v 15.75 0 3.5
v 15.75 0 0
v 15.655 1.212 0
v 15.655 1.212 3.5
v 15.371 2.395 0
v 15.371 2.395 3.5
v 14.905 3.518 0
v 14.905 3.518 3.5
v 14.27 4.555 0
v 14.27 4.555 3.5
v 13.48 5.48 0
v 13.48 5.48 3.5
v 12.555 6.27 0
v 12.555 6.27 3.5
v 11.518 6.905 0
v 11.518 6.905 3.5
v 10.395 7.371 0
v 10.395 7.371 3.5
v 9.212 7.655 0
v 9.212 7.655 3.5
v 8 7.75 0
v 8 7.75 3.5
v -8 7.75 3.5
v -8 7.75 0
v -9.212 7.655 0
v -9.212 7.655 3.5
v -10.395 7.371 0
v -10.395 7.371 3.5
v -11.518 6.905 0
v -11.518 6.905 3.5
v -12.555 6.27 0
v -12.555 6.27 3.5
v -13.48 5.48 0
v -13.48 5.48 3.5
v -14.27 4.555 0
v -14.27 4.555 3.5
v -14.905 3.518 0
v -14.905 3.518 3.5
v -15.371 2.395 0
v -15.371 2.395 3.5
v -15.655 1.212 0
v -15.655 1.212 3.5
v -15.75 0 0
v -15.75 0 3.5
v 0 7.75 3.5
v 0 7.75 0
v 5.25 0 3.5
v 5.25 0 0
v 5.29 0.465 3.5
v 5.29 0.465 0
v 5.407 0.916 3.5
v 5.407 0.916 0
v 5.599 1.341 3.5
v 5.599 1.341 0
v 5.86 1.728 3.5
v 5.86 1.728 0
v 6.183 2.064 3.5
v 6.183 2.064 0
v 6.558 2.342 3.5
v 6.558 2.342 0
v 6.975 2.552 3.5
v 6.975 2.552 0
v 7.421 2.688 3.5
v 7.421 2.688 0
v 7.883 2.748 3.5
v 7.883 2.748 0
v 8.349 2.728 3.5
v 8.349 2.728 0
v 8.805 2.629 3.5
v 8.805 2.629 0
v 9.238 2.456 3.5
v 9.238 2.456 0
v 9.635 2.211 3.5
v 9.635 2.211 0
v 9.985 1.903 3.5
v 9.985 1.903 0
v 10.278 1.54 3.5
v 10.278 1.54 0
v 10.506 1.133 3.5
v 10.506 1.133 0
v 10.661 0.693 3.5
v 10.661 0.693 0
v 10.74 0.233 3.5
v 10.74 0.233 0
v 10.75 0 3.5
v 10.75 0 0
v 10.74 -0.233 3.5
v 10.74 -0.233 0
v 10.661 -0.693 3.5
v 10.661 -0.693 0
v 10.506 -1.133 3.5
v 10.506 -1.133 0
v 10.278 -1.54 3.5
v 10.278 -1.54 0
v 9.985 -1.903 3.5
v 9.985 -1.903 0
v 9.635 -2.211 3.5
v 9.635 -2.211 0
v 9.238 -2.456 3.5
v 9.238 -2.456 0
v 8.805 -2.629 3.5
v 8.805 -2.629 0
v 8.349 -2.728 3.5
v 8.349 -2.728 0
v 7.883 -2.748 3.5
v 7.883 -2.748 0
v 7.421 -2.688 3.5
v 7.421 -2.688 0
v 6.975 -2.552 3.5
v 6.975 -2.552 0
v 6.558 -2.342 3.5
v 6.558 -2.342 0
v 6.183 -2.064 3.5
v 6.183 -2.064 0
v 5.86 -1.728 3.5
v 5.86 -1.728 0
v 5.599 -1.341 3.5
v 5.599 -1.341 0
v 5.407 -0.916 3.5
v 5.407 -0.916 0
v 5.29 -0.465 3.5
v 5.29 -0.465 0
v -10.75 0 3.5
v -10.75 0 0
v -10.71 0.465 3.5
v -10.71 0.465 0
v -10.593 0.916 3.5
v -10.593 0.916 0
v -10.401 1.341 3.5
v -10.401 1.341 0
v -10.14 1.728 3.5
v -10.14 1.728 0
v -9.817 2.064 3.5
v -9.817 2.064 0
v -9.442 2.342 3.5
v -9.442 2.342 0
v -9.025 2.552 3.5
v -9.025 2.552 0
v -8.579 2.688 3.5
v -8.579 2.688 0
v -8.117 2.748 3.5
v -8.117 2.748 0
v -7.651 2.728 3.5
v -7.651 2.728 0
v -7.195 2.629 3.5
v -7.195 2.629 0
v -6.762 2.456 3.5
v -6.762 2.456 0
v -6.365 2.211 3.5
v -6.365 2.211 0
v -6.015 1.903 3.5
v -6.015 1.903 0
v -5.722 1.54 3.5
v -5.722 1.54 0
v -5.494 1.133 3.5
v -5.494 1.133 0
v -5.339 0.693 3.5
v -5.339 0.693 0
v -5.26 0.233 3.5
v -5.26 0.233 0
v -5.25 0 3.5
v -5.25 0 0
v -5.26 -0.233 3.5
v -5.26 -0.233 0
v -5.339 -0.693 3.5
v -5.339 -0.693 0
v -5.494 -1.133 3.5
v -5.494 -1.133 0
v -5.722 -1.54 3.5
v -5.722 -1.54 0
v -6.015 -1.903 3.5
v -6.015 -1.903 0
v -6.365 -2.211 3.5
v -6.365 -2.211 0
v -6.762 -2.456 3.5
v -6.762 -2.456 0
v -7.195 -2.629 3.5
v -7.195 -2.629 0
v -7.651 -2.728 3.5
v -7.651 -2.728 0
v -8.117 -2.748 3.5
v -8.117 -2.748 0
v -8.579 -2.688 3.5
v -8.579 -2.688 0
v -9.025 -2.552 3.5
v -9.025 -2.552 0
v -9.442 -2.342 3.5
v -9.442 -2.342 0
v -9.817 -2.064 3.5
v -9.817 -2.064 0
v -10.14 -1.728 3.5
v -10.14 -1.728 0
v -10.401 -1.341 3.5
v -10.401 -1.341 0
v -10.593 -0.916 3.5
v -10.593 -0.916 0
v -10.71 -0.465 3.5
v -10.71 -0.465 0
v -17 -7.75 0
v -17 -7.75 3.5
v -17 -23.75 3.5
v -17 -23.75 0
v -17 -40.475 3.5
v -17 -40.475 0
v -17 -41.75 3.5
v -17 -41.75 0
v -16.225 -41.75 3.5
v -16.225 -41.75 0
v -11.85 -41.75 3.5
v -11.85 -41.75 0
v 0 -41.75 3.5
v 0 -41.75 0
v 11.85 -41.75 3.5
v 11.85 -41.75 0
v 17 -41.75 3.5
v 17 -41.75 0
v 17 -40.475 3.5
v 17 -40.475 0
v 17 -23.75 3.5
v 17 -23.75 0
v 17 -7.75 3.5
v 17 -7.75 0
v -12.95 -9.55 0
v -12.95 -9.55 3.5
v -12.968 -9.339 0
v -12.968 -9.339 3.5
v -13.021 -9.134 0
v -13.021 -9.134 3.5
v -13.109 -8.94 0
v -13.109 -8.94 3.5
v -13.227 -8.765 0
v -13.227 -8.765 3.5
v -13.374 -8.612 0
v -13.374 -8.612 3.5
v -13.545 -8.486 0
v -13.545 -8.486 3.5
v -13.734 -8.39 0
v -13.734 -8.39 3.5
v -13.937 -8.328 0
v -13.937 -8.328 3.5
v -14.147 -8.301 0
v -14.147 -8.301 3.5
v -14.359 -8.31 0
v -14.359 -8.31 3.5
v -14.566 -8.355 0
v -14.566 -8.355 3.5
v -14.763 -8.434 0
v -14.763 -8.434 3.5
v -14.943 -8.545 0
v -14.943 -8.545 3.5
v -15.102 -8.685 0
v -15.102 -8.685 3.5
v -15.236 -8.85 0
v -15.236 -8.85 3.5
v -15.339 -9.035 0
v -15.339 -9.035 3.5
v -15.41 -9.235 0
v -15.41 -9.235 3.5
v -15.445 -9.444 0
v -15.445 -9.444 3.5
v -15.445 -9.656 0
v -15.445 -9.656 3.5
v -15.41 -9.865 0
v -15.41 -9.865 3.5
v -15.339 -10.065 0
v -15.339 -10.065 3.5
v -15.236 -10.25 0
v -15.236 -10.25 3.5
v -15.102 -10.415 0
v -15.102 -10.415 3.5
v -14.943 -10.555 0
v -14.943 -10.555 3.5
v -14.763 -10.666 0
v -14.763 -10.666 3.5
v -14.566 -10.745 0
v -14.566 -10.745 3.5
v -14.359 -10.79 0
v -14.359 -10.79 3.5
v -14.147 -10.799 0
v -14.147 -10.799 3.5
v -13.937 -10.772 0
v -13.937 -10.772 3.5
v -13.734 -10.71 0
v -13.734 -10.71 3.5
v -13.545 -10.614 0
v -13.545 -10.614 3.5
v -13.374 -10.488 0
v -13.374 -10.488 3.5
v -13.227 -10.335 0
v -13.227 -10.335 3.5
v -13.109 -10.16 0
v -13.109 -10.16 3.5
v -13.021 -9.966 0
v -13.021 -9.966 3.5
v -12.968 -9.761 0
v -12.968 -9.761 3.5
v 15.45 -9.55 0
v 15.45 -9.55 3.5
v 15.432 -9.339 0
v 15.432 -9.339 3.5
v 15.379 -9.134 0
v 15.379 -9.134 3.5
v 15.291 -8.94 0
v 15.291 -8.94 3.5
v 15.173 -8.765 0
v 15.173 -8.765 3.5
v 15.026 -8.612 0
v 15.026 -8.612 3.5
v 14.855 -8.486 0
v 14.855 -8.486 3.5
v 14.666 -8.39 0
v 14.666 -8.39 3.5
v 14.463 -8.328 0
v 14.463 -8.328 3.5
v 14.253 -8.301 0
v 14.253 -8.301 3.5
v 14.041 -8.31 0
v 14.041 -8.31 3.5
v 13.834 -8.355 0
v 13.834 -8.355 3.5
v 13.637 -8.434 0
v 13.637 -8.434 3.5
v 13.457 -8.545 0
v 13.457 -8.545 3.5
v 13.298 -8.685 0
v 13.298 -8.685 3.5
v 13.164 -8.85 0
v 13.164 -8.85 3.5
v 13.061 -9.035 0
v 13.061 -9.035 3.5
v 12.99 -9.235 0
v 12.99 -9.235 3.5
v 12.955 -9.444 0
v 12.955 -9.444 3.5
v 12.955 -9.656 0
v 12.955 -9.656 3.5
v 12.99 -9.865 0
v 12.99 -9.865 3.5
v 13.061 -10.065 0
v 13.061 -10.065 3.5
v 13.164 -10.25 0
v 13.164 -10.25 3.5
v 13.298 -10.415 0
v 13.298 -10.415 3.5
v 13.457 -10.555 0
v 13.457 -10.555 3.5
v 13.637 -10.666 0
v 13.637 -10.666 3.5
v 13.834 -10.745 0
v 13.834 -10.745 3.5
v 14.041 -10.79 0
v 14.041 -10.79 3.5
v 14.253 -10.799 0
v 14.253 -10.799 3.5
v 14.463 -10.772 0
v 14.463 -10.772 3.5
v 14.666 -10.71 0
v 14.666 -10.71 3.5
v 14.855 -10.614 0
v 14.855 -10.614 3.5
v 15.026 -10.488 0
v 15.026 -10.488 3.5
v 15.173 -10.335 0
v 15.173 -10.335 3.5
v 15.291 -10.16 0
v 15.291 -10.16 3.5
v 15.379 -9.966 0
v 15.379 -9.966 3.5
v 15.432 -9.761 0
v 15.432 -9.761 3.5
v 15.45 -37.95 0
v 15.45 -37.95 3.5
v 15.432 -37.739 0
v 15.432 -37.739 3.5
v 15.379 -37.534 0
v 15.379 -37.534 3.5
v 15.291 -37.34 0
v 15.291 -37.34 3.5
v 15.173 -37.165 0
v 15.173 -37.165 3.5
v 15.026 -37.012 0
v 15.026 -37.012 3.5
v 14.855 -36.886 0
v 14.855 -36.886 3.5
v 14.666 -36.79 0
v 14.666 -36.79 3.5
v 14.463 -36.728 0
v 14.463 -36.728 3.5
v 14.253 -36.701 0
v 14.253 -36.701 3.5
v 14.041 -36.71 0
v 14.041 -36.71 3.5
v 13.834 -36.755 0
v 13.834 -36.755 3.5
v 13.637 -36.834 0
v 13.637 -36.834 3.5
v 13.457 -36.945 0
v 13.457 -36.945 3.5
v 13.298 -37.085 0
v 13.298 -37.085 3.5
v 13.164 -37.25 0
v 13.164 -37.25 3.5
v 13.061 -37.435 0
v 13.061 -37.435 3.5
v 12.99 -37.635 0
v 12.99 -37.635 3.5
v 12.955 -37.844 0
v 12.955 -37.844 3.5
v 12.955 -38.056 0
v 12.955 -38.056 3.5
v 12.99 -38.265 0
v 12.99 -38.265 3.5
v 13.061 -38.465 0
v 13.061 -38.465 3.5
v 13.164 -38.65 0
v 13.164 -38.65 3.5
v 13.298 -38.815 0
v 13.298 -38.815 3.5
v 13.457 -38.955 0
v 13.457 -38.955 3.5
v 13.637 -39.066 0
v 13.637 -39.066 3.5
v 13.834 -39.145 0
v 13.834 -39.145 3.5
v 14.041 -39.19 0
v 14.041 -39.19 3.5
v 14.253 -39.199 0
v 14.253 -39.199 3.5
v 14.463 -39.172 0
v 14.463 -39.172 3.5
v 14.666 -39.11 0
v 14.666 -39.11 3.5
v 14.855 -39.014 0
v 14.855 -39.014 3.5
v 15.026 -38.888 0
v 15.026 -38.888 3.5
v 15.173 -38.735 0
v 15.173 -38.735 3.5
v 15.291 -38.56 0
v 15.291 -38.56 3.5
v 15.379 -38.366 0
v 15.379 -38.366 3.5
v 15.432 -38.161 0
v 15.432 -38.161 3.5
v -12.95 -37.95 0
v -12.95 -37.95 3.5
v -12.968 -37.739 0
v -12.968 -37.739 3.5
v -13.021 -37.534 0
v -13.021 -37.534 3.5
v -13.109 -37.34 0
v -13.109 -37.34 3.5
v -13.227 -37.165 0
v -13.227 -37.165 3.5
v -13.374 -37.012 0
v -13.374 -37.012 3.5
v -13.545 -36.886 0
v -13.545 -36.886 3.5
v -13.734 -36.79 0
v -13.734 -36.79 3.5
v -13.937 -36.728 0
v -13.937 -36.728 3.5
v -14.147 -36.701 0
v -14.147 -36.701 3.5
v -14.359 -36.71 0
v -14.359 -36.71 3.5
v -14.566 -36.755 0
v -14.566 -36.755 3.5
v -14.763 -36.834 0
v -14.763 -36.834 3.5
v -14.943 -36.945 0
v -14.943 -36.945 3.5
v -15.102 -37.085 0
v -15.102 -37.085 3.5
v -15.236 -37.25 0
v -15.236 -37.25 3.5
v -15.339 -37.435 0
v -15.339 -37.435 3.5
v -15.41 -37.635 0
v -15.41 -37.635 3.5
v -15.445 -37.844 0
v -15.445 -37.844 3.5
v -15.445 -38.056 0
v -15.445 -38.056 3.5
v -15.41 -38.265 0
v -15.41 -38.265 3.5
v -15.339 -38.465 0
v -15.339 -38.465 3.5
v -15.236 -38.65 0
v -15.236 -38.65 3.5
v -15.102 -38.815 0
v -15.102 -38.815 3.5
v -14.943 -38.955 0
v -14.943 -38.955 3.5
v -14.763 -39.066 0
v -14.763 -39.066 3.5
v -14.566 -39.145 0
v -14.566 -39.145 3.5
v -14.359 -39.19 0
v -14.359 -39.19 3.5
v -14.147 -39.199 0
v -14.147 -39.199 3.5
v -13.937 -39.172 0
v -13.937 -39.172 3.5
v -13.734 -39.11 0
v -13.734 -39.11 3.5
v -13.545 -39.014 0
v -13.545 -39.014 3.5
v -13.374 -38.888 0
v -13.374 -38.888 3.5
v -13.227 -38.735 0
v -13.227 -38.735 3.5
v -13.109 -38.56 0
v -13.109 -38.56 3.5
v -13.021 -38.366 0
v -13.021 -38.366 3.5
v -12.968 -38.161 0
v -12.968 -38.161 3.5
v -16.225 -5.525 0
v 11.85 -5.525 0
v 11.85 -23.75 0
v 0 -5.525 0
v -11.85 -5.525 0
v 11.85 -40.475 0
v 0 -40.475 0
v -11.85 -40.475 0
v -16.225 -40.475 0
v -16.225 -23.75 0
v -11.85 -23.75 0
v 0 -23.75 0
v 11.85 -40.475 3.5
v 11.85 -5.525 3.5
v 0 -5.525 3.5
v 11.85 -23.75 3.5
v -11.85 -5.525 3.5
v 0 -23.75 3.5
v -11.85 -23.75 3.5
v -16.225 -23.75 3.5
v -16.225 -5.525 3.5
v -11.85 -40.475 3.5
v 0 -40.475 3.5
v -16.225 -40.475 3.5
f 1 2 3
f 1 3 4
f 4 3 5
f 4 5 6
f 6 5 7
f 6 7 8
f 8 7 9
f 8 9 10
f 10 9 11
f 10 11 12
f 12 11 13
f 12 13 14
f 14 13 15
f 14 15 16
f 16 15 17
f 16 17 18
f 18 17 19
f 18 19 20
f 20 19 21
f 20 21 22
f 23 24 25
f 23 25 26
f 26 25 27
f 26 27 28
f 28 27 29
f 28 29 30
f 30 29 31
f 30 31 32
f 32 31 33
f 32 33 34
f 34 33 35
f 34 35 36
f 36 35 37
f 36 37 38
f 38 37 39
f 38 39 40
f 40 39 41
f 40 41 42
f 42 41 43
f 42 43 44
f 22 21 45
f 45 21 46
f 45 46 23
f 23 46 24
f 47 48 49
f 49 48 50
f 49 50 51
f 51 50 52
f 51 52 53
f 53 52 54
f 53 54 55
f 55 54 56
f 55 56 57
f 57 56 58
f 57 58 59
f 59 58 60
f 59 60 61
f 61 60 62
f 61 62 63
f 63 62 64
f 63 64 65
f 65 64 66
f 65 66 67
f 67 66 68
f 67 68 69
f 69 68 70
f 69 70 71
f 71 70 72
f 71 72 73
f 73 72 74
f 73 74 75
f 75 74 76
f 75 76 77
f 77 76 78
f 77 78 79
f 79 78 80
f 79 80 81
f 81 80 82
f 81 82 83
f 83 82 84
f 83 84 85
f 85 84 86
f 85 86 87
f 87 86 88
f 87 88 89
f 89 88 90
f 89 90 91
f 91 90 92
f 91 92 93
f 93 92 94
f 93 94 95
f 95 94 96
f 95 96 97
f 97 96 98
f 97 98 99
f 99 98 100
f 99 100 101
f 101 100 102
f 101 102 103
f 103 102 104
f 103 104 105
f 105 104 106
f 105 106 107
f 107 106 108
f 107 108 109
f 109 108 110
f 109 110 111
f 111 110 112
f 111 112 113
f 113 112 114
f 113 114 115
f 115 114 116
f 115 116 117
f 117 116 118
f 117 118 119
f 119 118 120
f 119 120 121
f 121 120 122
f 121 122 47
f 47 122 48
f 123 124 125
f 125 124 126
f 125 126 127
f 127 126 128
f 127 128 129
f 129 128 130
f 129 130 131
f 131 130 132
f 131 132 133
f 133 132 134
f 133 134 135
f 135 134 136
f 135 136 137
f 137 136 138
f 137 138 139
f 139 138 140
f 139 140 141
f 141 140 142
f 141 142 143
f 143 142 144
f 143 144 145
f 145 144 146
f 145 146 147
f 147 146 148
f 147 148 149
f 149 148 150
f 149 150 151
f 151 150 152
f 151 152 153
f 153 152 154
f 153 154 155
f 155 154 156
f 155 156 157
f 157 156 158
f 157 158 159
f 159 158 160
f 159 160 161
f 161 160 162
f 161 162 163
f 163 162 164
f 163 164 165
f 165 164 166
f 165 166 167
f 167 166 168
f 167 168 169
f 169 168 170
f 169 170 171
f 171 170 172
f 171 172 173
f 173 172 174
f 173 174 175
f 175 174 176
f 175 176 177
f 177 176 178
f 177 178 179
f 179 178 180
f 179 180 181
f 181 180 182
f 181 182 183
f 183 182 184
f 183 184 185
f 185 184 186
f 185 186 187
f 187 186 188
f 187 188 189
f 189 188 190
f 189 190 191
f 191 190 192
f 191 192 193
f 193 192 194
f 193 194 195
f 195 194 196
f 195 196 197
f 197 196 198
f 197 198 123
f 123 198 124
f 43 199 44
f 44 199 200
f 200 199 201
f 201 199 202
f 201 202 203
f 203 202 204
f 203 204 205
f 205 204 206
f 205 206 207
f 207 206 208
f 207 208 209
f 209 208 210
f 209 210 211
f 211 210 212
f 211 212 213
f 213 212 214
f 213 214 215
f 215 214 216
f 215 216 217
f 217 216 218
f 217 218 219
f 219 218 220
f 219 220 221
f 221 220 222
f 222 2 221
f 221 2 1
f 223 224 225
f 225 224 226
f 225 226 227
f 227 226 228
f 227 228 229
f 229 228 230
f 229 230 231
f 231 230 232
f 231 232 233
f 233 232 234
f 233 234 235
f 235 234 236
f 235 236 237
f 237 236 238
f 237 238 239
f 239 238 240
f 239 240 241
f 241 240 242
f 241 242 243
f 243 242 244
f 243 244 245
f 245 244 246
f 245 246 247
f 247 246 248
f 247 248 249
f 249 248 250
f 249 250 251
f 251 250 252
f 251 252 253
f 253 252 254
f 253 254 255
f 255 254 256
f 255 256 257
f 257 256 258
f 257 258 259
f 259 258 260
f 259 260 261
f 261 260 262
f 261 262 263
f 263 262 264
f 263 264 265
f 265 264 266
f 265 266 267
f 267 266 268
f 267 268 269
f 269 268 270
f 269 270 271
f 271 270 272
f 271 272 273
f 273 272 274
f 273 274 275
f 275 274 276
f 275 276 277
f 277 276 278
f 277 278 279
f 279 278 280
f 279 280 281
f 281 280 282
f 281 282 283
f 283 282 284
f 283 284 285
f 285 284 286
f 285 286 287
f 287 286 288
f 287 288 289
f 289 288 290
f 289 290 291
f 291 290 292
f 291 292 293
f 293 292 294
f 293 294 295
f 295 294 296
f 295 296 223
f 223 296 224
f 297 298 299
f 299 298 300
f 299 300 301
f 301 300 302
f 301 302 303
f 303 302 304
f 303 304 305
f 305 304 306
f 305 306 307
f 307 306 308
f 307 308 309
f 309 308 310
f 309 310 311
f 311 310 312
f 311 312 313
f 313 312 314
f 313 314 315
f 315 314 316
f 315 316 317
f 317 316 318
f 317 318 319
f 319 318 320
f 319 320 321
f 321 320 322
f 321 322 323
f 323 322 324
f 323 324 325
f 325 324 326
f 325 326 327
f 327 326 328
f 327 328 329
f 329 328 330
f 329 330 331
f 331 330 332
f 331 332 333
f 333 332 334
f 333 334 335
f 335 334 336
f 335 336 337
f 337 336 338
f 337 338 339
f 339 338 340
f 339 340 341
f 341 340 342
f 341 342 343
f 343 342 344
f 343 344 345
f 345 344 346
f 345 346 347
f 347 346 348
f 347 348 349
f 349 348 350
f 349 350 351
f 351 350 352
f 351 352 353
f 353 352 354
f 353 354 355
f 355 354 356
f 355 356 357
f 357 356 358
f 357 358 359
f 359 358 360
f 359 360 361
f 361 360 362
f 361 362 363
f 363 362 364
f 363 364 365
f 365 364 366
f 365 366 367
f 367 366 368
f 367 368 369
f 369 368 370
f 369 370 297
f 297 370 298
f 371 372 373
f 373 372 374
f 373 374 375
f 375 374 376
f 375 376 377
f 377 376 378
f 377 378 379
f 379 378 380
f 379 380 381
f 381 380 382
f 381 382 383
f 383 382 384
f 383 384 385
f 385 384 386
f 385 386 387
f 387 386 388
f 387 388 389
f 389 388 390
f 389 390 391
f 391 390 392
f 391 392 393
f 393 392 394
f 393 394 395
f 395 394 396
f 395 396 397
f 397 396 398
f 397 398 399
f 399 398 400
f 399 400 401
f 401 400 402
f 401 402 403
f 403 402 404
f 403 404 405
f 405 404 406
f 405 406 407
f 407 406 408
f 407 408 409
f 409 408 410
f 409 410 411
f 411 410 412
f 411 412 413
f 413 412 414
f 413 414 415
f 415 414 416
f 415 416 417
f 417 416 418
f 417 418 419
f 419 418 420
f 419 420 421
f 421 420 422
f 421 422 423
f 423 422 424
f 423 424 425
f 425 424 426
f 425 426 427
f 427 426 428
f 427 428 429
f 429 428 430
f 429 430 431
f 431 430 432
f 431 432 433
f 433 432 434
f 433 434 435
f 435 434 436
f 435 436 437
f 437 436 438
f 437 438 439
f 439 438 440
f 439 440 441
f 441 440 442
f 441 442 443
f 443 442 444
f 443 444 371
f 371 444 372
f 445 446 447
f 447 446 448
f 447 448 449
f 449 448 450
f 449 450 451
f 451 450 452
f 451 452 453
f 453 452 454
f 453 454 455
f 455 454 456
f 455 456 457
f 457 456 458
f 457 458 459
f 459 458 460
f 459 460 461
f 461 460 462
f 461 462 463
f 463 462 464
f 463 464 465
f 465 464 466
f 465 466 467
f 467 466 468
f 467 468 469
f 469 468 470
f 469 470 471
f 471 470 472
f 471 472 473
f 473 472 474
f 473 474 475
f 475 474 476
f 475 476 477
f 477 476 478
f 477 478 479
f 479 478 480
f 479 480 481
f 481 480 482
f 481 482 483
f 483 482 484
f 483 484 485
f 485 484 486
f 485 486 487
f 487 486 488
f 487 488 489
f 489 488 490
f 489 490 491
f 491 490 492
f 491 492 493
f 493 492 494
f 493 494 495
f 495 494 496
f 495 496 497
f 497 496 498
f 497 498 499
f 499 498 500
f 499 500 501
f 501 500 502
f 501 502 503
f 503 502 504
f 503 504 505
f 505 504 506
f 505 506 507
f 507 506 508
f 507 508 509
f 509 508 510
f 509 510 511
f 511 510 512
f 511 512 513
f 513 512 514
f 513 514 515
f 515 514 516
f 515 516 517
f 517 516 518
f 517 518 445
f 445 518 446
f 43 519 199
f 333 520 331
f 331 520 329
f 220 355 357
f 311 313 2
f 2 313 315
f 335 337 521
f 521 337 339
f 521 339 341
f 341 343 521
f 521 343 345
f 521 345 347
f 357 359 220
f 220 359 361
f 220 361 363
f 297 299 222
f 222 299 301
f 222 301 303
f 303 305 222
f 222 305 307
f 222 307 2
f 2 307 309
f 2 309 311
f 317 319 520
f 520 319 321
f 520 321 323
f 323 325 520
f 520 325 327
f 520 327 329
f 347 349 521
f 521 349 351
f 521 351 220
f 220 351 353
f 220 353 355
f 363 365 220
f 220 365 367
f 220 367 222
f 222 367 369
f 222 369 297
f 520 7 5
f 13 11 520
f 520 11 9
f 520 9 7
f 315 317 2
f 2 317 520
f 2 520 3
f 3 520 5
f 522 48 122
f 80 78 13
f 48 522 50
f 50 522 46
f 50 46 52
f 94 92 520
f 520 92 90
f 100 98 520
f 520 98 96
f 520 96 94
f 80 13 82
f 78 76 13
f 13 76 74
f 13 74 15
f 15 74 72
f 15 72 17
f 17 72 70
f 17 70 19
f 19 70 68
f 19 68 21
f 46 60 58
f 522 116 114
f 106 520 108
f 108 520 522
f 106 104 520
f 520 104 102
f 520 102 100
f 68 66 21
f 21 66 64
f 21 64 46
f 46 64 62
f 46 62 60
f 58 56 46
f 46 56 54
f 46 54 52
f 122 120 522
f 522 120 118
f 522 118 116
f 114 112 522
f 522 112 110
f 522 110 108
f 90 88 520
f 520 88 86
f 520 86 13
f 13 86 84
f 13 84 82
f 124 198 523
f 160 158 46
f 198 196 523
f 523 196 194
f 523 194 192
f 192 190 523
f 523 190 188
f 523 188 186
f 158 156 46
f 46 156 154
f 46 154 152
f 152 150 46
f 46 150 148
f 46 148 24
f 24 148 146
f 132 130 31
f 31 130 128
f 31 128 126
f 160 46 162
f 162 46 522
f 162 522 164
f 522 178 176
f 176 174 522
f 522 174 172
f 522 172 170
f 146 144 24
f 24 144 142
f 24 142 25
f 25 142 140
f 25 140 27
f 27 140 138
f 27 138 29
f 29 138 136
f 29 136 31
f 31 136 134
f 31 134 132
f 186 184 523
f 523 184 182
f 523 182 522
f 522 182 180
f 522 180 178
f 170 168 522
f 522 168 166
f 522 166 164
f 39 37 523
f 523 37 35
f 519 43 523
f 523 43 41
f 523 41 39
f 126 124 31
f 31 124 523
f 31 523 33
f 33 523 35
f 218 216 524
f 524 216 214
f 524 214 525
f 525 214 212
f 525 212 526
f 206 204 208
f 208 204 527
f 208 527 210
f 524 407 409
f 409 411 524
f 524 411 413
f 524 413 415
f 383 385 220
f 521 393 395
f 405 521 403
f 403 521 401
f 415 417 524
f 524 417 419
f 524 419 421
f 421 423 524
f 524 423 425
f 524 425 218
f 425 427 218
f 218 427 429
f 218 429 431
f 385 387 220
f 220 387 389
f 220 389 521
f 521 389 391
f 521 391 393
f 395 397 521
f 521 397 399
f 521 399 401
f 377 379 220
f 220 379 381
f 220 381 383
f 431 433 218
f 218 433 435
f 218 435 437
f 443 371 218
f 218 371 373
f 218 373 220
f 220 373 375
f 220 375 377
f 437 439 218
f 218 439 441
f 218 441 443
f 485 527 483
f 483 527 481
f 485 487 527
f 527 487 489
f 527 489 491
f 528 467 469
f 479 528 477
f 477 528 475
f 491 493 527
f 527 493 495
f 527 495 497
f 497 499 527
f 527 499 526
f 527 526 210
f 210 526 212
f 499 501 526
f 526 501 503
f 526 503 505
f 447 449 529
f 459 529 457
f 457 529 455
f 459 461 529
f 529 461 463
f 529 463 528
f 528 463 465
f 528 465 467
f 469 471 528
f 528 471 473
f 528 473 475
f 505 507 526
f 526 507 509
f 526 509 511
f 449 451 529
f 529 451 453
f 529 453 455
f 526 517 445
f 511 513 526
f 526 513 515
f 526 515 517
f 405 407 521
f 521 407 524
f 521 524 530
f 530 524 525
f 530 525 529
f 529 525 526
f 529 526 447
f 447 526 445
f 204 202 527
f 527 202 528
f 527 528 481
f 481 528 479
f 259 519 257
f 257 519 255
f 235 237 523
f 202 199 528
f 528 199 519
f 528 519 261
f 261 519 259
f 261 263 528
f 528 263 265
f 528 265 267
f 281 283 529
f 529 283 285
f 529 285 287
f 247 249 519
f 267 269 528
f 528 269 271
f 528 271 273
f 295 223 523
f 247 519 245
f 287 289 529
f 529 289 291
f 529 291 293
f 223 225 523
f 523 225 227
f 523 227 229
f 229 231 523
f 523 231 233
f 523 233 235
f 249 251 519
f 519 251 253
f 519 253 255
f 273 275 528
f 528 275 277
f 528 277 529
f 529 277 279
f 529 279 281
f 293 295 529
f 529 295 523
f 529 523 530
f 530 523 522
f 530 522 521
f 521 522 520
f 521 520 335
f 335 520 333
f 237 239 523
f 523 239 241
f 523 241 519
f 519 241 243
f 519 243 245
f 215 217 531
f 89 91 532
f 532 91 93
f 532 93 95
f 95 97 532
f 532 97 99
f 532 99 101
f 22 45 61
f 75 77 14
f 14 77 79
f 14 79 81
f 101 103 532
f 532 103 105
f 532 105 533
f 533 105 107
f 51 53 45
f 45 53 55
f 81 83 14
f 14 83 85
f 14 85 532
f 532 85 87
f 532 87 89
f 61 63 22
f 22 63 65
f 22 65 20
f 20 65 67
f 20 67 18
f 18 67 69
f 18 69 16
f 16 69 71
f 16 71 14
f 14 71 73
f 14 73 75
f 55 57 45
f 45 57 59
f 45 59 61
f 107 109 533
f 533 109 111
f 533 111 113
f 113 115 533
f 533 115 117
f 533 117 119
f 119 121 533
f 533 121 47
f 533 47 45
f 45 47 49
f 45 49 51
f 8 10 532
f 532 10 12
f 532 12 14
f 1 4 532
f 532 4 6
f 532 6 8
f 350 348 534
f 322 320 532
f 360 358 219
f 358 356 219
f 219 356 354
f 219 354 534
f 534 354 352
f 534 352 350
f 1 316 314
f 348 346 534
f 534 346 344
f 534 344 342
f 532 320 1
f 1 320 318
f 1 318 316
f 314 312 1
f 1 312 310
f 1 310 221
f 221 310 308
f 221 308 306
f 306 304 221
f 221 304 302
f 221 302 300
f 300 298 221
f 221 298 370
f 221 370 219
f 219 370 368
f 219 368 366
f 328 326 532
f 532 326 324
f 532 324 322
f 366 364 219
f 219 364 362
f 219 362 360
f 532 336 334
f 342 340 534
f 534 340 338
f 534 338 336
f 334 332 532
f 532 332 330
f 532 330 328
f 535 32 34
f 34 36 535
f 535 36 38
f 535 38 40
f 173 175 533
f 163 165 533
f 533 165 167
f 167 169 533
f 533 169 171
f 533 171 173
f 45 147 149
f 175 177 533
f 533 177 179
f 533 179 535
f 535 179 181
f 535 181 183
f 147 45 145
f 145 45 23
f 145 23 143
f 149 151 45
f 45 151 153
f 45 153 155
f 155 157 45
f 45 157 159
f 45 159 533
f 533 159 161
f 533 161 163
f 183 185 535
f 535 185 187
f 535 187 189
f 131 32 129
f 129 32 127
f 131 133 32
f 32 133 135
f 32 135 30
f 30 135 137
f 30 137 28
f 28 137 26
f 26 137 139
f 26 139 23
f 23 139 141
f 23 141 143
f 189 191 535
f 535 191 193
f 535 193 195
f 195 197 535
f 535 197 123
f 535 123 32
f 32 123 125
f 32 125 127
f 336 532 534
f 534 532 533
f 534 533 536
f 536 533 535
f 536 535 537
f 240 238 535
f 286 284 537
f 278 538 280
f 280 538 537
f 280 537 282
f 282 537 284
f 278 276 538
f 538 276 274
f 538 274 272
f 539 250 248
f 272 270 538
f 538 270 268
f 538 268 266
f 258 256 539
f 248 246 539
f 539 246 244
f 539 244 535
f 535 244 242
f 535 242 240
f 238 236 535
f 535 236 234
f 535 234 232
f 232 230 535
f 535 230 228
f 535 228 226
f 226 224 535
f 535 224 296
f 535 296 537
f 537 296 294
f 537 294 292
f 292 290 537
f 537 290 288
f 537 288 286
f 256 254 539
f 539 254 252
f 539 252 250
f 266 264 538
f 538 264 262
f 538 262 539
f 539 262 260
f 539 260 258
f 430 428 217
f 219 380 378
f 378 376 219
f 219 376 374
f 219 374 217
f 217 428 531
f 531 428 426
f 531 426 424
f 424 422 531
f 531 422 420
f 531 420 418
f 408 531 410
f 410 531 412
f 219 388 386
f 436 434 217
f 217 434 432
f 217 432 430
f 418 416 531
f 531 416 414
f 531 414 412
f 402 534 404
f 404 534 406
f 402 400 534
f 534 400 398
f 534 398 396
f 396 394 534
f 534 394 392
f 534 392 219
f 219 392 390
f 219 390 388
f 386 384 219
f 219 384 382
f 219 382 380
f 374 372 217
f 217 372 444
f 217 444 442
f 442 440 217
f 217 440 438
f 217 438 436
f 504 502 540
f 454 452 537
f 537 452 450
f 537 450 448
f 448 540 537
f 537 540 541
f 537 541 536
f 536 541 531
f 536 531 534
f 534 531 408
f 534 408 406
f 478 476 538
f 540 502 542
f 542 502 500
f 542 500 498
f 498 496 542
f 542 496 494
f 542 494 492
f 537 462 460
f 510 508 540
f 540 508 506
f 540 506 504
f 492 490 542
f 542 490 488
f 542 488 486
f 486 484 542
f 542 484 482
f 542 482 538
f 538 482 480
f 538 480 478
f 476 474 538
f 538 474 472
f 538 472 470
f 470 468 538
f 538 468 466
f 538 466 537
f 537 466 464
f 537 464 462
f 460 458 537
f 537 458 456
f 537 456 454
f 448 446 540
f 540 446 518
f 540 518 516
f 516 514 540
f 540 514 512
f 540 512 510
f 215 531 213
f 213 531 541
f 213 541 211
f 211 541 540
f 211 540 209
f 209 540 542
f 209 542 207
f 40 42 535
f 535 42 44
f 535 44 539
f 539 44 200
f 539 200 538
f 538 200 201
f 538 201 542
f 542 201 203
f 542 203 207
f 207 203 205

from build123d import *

# Parameters (mm, degrees)
SKETCH1_R           = 2.75
BOSS_EXTRUDE1_DEPTH = 10
BOSS_EXTRUDE4_DEPTH = 10
SKETCH7_W           = 25
SKETCH7_H           = 2
BOSS_EXTRUDE6_DEPTH = 2
SKETCH8_R           = 1.25
CUT_EXTRUDE3_DEPTH  = 19
SKETCH9_W           = 25
SKETCH9_H           = 29.5
BOSS_EXTRUDE7_DEPTH = 10
SKETCH10_W          = 16
SKETCH10_H          = 6.5
CUT_EXTRUDE4_DEPTH  = 54


with BuildPart() as part:
    # Sketch1 → Boss-Extrude1 (new body)
    with BuildSketch(Plane.XY):
        with BuildLine():
            Line((8, 7.75), (-8, 7.75))
            ThreePointArc((-8, 7.75), (-15.75, 0), (-8, -7.75))
            Line((-8, -7.75), (8, -7.75))
            ThreePointArc((8, -7.75), (15.75, 0), (8, 7.75))
        make_face()
        with Locations((-8, 0)):
            Circle(SKETCH1_R, mode=Mode.SUBTRACT)
        with Locations((8, 0)):
            Circle(SKETCH1_R, mode=Mode.SUBTRACT)
    extrude(amount=BOSS_EXTRUDE1_DEPTH)

    # Sketch5 → Boss-Extrude4 (add)
    with BuildSketch(Plane.XY):
        Polygon((-12.5, -7.75), (-17, -7.75), (-17, -41.75), (17, -41.75), (17, -7.75), (12.5, -7.75), (12.5, -12.25), (12.5, -37.25), (-12.5, -37.25), (-12.5, -12.25), align=None)
        with BuildLine():
            ThreePointArc((-8, -7.75), (-13.480077554, -5.480077554), (-15.75, 0))
            Line((-15.75, 0), (-17, -7.75))
            Line((-17, -7.75), (-12.5, -7.75))
            Line((-12.5, -7.75), (-8, -7.75))
        make_face()
        with BuildLine():
            ThreePointArc((15.75, 0), (13.480077554, -5.480077554), (8, -7.75))
            Line((8, -7.75), (12.5, -7.75))
            Line((12.5, -7.75), (17, -7.75))
            Line((17, -7.75), (15.75, 0))
        make_face()
    extrude(amount=BOSS_EXTRUDE4_DEPTH)

    # Sketch7 → Boss-Extrude6 (add)
    with BuildSketch(Plane.XY.offset(10)):
        with Locations((0, -6.75)):
            Rectangle(SKETCH7_W, SKETCH7_H)
    extrude(amount=BOSS_EXTRUDE6_DEPTH)

    # Sketch8 → Cut-Extrude3 (cut)
    with BuildSketch(Plane.XY.offset(10)):
        with Locations((-14.2, -9.55)):
            Circle(SKETCH8_R)
        with Locations((14.2, -9.55)):
            Circle(SKETCH8_R)
        with Locations((14.2, -37.95)):
            Circle(SKETCH8_R)
        with Locations((-14.2, -37.95)):
            Circle(SKETCH8_R)
    extrude(amount=-CUT_EXTRUDE3_DEPTH, mode=Mode.SUBTRACT)

    # Sketch9 → Boss-Extrude7 (add)
    with BuildSketch(Plane(origin=(0, 0, 0), x_dir=(-1, 0, 0), z_dir=(0, 0, -1))):
        with Locations((0, -22.5)):
            Rectangle(SKETCH9_W, SKETCH9_H)
    extrude(amount=-BOSS_EXTRUDE7_DEPTH)

    # Sketch10 → Cut-Extrude4 (cut)
    with BuildSketch(Plane(origin=(0, 7.75, 0), x_dir=(1, 0, 0), z_dir=(0, 1, 0))):
        Polygon((-8, -3.5), (-17, -3.5), (-17, -13.303899359), (17, -13.303899359), (17, -3.5), (8, -3.5), (8, -10), (-8, -10), align=None)
        with Locations((0, -6.75)):
            Rectangle(SKETCH10_W, SKETCH10_H)
    extrude(amount=-CUT_EXTRUDE4_DEPTH, mode=Mode.SUBTRACT)


solid = part.part
